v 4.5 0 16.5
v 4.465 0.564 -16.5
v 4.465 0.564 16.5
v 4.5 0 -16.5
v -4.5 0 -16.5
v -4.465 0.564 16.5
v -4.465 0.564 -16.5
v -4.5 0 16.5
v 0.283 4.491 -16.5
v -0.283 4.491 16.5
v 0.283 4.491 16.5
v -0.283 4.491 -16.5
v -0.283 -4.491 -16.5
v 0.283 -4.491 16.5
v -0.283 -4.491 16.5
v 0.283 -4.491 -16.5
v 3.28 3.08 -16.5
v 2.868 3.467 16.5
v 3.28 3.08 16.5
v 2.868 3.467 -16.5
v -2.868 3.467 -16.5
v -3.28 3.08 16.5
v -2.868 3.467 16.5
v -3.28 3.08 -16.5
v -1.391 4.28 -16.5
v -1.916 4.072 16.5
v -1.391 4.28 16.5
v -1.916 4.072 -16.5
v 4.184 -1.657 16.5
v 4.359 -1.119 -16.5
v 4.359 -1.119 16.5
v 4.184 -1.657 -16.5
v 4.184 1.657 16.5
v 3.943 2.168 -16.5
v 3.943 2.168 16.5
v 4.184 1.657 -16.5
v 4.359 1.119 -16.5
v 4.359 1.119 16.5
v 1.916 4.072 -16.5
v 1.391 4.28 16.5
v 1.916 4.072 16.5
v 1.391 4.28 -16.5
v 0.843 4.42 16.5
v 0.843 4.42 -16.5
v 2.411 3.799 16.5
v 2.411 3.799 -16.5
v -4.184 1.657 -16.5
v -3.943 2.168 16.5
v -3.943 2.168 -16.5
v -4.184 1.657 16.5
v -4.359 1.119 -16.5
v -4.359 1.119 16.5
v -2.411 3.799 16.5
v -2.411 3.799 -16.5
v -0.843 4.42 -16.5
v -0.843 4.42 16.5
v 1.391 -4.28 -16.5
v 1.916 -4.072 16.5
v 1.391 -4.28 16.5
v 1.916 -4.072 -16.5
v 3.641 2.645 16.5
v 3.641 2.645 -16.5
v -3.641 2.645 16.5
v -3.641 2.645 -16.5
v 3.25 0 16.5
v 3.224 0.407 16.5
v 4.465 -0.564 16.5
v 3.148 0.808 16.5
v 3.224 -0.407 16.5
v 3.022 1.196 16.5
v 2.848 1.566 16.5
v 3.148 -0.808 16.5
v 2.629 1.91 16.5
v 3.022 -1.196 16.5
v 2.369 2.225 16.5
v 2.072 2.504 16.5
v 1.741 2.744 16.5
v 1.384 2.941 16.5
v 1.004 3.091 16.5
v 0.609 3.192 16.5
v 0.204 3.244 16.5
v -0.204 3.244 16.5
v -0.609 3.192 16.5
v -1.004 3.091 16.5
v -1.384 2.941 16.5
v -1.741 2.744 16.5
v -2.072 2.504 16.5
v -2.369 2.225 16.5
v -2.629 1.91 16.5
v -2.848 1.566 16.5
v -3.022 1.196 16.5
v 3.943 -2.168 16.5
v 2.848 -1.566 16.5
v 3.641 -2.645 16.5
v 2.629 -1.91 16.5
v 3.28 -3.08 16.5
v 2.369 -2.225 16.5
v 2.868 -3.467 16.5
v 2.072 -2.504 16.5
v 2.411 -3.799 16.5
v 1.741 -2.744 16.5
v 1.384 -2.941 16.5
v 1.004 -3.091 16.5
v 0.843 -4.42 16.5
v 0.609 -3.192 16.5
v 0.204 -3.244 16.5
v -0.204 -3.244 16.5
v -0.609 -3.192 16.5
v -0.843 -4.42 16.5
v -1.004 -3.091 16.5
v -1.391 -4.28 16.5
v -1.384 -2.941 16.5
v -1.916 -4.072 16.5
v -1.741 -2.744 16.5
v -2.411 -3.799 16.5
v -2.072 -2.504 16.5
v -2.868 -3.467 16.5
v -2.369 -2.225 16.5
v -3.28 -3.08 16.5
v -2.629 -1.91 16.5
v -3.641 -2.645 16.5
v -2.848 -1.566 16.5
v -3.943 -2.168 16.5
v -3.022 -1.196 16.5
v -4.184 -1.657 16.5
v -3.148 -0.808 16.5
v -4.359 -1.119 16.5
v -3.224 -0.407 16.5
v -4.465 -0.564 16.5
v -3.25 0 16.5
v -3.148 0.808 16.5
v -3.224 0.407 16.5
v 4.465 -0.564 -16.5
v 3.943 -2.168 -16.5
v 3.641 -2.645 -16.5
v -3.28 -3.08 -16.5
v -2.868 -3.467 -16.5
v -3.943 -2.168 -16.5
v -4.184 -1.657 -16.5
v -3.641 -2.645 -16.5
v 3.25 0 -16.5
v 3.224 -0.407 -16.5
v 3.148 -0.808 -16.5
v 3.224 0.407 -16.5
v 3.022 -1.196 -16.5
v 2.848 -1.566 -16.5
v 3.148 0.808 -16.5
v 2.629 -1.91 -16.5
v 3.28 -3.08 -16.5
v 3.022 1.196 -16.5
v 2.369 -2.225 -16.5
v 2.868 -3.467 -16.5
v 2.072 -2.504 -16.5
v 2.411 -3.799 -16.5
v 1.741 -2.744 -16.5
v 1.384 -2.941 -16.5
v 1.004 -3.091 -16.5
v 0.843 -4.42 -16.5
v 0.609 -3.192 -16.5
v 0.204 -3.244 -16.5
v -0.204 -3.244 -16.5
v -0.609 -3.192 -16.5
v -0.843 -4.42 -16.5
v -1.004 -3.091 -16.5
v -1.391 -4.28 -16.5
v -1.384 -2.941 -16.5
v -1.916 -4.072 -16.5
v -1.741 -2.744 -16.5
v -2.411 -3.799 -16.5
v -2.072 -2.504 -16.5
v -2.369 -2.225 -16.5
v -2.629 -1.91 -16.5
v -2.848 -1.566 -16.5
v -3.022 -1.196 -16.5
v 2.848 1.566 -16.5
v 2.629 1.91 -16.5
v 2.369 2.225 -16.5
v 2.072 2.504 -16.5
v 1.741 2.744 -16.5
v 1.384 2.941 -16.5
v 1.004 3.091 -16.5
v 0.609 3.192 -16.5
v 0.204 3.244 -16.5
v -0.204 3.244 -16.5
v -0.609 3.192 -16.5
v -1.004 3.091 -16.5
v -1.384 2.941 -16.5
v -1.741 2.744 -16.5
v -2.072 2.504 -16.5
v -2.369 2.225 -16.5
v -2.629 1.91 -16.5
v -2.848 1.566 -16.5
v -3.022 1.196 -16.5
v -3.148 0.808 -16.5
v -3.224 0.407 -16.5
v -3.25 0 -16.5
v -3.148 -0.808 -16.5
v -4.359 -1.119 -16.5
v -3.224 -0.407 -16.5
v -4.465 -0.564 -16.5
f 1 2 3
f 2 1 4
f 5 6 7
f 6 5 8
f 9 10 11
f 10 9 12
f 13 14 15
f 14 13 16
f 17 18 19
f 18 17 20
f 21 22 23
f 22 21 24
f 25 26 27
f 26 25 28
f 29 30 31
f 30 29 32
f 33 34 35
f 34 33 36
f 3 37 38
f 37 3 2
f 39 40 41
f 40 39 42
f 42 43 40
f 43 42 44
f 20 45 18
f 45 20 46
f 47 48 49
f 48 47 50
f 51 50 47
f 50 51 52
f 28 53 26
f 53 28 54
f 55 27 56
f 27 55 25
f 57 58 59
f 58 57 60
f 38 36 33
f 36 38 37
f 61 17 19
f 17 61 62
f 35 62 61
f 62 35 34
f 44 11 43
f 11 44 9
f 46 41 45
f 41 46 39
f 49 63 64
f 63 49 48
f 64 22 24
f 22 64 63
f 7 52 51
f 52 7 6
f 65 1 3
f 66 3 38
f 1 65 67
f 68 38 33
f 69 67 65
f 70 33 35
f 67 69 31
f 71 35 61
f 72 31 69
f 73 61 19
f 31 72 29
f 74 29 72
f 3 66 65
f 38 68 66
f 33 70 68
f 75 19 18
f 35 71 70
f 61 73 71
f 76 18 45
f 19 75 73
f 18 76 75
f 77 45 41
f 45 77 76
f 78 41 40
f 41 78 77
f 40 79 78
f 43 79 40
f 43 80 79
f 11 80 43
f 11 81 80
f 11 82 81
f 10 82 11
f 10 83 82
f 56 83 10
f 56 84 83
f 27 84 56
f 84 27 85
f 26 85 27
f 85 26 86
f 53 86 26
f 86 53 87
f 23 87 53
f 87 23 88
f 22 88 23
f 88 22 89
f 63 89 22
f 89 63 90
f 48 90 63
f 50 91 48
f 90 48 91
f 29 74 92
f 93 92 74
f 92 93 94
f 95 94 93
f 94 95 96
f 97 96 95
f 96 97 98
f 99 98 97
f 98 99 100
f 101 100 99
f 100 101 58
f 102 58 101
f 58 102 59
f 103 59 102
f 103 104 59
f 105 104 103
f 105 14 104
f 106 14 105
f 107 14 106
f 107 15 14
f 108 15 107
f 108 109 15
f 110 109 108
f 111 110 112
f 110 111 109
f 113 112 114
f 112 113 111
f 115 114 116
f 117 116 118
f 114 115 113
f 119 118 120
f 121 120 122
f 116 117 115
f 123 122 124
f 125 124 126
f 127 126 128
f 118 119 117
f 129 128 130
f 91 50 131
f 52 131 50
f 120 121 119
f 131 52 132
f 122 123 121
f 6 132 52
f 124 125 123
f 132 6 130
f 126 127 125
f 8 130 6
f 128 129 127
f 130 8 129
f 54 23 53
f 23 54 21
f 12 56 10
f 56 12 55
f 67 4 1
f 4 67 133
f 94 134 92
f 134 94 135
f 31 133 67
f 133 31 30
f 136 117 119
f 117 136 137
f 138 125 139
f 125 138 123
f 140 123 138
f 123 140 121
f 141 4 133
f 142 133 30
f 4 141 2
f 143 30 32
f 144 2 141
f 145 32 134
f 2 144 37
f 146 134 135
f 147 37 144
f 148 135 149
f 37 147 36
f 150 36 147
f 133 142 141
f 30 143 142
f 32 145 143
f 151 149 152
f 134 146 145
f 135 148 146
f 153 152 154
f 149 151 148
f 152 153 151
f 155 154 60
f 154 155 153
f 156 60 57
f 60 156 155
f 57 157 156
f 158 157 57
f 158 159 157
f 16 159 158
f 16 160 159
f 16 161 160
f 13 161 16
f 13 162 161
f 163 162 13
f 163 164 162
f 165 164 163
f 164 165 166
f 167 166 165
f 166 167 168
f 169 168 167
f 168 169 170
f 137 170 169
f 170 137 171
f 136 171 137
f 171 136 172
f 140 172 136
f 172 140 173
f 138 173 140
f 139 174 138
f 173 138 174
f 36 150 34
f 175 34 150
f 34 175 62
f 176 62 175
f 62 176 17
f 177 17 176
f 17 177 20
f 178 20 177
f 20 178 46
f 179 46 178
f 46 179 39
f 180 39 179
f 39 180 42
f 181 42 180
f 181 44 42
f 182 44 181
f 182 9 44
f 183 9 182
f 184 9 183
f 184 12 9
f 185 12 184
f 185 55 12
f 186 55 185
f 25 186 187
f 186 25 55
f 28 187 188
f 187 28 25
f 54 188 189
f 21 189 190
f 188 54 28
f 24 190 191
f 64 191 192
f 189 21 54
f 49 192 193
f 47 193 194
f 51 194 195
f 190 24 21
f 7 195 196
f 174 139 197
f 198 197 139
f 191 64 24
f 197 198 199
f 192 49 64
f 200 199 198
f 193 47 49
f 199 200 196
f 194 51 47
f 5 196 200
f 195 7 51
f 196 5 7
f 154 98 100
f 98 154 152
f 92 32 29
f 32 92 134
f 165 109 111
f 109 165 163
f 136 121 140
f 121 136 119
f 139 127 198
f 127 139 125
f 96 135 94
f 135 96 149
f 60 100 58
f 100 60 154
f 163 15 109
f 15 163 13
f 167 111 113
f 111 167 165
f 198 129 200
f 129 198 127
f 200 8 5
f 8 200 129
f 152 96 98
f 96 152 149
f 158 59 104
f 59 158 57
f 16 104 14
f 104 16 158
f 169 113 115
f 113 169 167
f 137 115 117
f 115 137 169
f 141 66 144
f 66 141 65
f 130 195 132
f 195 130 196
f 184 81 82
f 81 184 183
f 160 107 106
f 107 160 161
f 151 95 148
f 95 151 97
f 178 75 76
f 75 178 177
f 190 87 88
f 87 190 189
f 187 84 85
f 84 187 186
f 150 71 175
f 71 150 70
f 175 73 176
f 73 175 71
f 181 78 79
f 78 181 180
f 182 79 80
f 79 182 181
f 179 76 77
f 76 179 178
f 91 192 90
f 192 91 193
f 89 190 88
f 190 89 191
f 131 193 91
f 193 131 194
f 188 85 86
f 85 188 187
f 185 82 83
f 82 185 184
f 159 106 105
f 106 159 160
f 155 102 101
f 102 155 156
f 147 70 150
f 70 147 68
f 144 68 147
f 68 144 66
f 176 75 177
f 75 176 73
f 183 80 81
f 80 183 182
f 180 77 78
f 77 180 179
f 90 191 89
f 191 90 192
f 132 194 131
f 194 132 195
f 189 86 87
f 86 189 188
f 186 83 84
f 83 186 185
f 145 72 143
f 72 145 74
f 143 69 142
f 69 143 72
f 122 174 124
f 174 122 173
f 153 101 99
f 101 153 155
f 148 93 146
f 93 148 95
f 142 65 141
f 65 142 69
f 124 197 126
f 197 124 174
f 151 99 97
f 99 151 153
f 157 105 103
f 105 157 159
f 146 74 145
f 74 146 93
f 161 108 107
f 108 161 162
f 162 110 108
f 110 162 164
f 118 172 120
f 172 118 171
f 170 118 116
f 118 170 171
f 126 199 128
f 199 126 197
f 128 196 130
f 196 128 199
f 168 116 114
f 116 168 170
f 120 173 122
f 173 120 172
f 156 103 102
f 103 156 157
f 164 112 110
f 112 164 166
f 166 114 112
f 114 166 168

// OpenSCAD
$fn = 50;


difference() {
	union() {
		translate(v = [0, 0, -16.5000000000]) {
			cylinder(h = 33, r = 4.5000000000);
		}
	}
	union() {
		translate(v = [0, 0, -100.0000000000]) {
			cylinder(h = 200, r = 3.2500000000);
		}
	}
}
